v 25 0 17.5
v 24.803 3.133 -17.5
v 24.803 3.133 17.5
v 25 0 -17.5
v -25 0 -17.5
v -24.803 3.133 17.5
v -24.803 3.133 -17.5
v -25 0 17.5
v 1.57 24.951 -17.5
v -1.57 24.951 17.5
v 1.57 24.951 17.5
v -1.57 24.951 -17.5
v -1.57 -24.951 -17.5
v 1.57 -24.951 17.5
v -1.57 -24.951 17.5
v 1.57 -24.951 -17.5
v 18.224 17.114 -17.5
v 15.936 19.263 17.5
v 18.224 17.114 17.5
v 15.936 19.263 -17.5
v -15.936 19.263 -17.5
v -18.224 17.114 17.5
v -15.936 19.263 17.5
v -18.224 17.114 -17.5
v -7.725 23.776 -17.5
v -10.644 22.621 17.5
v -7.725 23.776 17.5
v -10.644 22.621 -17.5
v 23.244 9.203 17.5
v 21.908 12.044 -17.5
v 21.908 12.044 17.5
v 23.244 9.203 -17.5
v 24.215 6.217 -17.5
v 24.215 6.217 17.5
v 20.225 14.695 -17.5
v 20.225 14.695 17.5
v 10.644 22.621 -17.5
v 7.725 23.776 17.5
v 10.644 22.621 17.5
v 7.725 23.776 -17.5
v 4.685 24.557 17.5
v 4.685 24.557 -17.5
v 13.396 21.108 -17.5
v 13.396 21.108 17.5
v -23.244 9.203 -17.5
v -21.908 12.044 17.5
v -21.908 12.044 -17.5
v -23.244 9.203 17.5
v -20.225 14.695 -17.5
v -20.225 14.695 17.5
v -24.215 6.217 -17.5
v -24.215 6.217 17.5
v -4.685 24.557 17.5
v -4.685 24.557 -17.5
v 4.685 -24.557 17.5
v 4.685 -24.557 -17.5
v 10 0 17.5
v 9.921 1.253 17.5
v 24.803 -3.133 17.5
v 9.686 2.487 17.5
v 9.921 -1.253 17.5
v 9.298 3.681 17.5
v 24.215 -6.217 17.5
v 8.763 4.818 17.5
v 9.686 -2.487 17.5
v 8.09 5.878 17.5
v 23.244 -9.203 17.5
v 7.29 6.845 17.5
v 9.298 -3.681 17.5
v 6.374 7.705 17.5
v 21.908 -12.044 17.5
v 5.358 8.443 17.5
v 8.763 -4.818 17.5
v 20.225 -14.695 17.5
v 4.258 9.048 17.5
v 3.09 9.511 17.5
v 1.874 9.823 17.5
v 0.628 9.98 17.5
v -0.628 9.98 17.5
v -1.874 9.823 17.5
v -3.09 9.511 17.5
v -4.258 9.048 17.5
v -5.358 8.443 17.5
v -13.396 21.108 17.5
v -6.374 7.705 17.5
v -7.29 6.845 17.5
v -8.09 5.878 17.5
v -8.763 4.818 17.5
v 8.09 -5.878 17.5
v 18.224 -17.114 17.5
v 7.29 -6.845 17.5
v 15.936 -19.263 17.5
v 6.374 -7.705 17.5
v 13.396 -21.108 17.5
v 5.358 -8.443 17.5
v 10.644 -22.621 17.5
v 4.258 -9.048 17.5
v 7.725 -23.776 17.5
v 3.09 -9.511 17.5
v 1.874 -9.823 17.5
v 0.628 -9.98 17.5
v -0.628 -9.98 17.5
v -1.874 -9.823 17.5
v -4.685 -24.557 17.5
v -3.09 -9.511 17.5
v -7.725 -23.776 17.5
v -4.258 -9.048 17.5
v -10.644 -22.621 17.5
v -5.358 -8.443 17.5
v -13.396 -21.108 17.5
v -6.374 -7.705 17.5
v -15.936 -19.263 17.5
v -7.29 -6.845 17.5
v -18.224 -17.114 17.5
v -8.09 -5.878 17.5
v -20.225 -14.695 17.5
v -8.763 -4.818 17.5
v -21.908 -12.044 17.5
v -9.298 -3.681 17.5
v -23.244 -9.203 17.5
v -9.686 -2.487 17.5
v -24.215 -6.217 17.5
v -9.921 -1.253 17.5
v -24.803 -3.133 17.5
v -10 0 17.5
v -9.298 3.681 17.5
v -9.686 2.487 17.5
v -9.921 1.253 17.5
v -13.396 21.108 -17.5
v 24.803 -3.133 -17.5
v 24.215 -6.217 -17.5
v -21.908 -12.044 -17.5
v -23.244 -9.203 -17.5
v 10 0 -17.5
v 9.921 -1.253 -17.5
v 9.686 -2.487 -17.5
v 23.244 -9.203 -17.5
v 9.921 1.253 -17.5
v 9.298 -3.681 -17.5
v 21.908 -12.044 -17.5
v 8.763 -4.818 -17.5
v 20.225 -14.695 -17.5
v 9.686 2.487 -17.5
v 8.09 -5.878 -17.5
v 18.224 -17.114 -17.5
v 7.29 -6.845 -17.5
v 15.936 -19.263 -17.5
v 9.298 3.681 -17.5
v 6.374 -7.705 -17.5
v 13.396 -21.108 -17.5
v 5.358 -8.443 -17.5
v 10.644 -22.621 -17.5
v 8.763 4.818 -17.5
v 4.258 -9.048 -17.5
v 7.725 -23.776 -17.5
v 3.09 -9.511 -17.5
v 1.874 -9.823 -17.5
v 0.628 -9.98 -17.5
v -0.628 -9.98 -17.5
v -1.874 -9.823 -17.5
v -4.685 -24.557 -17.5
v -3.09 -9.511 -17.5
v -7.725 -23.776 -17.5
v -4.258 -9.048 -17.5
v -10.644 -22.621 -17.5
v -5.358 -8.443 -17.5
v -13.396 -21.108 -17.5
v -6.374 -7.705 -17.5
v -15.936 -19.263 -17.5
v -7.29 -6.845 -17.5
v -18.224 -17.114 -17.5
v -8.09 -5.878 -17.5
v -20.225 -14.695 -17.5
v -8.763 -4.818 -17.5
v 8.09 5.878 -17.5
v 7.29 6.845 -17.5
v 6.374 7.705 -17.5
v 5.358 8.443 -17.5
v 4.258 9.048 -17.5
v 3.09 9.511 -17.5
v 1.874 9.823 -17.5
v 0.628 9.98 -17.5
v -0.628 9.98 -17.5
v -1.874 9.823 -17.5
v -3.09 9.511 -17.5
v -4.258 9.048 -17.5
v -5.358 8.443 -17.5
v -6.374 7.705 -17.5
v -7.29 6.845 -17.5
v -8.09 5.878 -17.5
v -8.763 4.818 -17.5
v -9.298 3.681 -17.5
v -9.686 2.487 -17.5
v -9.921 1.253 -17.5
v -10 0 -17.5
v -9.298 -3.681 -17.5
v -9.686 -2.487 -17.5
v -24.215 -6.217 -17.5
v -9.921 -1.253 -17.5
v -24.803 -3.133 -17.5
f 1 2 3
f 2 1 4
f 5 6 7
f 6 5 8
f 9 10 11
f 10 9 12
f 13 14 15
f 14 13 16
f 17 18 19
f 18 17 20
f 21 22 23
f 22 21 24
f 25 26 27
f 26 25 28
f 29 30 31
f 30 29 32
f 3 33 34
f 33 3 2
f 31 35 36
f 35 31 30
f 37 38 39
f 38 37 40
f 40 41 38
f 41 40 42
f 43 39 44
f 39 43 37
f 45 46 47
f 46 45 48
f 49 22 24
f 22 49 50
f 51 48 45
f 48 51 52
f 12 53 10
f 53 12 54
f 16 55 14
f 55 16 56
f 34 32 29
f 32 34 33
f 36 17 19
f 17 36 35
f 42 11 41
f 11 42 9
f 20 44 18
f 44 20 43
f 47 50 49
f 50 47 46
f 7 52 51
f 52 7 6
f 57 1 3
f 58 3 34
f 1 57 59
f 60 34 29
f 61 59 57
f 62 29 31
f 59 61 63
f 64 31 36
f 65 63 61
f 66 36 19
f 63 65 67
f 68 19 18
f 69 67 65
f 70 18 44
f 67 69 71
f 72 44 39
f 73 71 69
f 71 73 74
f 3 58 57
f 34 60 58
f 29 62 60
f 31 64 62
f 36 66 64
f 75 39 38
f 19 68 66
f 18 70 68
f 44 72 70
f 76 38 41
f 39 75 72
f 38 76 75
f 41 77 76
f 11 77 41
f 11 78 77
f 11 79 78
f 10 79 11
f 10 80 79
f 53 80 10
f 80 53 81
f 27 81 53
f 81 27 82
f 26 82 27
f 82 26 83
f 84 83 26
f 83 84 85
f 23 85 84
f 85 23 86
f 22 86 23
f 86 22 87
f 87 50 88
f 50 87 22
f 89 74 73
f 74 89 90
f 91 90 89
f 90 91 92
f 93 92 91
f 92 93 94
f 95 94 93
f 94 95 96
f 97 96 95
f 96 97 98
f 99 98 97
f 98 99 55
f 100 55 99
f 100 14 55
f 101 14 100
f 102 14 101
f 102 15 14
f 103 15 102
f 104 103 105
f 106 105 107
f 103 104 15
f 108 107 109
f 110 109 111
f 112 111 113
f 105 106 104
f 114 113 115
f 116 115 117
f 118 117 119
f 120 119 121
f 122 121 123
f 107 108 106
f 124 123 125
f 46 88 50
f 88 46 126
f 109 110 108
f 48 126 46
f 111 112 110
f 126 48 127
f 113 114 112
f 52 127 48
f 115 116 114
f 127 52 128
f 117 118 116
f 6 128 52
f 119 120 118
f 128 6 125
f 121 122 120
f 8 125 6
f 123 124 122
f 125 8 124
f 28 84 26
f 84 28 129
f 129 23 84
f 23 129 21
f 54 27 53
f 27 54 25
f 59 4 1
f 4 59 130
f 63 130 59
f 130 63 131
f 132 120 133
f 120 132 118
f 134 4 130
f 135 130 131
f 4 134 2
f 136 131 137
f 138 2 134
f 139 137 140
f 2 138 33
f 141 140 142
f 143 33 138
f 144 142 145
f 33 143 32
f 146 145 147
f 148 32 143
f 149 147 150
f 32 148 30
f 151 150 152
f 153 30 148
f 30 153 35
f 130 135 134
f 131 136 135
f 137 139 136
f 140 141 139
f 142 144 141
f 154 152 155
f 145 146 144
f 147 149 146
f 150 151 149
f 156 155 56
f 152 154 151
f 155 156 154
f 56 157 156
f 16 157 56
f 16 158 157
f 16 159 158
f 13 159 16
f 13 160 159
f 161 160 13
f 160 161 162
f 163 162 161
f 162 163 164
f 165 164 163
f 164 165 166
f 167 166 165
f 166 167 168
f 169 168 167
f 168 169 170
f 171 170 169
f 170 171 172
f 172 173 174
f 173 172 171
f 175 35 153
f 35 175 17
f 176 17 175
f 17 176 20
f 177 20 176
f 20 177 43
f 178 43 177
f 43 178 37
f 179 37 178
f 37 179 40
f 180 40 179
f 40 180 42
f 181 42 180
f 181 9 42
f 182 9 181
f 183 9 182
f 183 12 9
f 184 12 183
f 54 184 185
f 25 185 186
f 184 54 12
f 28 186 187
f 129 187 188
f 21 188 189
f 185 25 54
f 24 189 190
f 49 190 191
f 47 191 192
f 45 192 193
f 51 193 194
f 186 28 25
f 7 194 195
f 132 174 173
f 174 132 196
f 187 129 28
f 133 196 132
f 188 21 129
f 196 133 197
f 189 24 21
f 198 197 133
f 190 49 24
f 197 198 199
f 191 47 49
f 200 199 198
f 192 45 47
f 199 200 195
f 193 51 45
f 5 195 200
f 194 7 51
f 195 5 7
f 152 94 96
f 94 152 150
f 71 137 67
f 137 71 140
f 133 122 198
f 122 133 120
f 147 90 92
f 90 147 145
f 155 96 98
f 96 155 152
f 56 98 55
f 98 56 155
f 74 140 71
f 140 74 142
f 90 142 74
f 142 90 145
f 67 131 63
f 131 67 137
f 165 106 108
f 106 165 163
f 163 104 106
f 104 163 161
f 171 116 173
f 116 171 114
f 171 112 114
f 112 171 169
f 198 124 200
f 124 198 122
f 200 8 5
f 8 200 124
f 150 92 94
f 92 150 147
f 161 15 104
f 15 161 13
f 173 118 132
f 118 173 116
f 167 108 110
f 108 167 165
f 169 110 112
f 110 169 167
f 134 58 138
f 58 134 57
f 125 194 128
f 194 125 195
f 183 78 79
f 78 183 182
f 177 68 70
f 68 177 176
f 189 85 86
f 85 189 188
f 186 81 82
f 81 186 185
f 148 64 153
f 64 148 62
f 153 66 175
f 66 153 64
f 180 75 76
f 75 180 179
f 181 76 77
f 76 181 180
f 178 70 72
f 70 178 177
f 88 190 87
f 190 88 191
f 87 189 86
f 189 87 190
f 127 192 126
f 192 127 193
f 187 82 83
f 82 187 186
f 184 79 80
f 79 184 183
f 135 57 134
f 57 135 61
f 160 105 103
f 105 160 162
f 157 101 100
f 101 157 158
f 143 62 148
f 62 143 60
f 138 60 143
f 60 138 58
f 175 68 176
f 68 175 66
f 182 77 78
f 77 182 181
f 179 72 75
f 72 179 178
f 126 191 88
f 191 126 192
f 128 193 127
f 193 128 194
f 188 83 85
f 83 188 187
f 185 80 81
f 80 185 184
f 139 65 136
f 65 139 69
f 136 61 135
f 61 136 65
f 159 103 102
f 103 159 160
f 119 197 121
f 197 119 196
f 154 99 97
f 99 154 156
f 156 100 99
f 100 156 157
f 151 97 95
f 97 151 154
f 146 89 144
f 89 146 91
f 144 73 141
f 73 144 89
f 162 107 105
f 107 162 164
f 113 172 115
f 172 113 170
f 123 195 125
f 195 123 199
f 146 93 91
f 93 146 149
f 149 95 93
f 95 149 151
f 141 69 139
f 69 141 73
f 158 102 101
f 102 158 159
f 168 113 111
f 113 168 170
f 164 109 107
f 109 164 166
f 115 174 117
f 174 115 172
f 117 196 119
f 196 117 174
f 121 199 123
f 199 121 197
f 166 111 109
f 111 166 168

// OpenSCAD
$fn = 50;


difference() {
	union() {
		translate(v = [0, 0, -17.5000000000]) {
			cylinder(h = 35, r = 25.0000000000);
		}
	}
	union() {
		translate(v = [0, 0, -100.0000000000]) {
			cylinder(h = 200, r = 10);
		}
	}
}
